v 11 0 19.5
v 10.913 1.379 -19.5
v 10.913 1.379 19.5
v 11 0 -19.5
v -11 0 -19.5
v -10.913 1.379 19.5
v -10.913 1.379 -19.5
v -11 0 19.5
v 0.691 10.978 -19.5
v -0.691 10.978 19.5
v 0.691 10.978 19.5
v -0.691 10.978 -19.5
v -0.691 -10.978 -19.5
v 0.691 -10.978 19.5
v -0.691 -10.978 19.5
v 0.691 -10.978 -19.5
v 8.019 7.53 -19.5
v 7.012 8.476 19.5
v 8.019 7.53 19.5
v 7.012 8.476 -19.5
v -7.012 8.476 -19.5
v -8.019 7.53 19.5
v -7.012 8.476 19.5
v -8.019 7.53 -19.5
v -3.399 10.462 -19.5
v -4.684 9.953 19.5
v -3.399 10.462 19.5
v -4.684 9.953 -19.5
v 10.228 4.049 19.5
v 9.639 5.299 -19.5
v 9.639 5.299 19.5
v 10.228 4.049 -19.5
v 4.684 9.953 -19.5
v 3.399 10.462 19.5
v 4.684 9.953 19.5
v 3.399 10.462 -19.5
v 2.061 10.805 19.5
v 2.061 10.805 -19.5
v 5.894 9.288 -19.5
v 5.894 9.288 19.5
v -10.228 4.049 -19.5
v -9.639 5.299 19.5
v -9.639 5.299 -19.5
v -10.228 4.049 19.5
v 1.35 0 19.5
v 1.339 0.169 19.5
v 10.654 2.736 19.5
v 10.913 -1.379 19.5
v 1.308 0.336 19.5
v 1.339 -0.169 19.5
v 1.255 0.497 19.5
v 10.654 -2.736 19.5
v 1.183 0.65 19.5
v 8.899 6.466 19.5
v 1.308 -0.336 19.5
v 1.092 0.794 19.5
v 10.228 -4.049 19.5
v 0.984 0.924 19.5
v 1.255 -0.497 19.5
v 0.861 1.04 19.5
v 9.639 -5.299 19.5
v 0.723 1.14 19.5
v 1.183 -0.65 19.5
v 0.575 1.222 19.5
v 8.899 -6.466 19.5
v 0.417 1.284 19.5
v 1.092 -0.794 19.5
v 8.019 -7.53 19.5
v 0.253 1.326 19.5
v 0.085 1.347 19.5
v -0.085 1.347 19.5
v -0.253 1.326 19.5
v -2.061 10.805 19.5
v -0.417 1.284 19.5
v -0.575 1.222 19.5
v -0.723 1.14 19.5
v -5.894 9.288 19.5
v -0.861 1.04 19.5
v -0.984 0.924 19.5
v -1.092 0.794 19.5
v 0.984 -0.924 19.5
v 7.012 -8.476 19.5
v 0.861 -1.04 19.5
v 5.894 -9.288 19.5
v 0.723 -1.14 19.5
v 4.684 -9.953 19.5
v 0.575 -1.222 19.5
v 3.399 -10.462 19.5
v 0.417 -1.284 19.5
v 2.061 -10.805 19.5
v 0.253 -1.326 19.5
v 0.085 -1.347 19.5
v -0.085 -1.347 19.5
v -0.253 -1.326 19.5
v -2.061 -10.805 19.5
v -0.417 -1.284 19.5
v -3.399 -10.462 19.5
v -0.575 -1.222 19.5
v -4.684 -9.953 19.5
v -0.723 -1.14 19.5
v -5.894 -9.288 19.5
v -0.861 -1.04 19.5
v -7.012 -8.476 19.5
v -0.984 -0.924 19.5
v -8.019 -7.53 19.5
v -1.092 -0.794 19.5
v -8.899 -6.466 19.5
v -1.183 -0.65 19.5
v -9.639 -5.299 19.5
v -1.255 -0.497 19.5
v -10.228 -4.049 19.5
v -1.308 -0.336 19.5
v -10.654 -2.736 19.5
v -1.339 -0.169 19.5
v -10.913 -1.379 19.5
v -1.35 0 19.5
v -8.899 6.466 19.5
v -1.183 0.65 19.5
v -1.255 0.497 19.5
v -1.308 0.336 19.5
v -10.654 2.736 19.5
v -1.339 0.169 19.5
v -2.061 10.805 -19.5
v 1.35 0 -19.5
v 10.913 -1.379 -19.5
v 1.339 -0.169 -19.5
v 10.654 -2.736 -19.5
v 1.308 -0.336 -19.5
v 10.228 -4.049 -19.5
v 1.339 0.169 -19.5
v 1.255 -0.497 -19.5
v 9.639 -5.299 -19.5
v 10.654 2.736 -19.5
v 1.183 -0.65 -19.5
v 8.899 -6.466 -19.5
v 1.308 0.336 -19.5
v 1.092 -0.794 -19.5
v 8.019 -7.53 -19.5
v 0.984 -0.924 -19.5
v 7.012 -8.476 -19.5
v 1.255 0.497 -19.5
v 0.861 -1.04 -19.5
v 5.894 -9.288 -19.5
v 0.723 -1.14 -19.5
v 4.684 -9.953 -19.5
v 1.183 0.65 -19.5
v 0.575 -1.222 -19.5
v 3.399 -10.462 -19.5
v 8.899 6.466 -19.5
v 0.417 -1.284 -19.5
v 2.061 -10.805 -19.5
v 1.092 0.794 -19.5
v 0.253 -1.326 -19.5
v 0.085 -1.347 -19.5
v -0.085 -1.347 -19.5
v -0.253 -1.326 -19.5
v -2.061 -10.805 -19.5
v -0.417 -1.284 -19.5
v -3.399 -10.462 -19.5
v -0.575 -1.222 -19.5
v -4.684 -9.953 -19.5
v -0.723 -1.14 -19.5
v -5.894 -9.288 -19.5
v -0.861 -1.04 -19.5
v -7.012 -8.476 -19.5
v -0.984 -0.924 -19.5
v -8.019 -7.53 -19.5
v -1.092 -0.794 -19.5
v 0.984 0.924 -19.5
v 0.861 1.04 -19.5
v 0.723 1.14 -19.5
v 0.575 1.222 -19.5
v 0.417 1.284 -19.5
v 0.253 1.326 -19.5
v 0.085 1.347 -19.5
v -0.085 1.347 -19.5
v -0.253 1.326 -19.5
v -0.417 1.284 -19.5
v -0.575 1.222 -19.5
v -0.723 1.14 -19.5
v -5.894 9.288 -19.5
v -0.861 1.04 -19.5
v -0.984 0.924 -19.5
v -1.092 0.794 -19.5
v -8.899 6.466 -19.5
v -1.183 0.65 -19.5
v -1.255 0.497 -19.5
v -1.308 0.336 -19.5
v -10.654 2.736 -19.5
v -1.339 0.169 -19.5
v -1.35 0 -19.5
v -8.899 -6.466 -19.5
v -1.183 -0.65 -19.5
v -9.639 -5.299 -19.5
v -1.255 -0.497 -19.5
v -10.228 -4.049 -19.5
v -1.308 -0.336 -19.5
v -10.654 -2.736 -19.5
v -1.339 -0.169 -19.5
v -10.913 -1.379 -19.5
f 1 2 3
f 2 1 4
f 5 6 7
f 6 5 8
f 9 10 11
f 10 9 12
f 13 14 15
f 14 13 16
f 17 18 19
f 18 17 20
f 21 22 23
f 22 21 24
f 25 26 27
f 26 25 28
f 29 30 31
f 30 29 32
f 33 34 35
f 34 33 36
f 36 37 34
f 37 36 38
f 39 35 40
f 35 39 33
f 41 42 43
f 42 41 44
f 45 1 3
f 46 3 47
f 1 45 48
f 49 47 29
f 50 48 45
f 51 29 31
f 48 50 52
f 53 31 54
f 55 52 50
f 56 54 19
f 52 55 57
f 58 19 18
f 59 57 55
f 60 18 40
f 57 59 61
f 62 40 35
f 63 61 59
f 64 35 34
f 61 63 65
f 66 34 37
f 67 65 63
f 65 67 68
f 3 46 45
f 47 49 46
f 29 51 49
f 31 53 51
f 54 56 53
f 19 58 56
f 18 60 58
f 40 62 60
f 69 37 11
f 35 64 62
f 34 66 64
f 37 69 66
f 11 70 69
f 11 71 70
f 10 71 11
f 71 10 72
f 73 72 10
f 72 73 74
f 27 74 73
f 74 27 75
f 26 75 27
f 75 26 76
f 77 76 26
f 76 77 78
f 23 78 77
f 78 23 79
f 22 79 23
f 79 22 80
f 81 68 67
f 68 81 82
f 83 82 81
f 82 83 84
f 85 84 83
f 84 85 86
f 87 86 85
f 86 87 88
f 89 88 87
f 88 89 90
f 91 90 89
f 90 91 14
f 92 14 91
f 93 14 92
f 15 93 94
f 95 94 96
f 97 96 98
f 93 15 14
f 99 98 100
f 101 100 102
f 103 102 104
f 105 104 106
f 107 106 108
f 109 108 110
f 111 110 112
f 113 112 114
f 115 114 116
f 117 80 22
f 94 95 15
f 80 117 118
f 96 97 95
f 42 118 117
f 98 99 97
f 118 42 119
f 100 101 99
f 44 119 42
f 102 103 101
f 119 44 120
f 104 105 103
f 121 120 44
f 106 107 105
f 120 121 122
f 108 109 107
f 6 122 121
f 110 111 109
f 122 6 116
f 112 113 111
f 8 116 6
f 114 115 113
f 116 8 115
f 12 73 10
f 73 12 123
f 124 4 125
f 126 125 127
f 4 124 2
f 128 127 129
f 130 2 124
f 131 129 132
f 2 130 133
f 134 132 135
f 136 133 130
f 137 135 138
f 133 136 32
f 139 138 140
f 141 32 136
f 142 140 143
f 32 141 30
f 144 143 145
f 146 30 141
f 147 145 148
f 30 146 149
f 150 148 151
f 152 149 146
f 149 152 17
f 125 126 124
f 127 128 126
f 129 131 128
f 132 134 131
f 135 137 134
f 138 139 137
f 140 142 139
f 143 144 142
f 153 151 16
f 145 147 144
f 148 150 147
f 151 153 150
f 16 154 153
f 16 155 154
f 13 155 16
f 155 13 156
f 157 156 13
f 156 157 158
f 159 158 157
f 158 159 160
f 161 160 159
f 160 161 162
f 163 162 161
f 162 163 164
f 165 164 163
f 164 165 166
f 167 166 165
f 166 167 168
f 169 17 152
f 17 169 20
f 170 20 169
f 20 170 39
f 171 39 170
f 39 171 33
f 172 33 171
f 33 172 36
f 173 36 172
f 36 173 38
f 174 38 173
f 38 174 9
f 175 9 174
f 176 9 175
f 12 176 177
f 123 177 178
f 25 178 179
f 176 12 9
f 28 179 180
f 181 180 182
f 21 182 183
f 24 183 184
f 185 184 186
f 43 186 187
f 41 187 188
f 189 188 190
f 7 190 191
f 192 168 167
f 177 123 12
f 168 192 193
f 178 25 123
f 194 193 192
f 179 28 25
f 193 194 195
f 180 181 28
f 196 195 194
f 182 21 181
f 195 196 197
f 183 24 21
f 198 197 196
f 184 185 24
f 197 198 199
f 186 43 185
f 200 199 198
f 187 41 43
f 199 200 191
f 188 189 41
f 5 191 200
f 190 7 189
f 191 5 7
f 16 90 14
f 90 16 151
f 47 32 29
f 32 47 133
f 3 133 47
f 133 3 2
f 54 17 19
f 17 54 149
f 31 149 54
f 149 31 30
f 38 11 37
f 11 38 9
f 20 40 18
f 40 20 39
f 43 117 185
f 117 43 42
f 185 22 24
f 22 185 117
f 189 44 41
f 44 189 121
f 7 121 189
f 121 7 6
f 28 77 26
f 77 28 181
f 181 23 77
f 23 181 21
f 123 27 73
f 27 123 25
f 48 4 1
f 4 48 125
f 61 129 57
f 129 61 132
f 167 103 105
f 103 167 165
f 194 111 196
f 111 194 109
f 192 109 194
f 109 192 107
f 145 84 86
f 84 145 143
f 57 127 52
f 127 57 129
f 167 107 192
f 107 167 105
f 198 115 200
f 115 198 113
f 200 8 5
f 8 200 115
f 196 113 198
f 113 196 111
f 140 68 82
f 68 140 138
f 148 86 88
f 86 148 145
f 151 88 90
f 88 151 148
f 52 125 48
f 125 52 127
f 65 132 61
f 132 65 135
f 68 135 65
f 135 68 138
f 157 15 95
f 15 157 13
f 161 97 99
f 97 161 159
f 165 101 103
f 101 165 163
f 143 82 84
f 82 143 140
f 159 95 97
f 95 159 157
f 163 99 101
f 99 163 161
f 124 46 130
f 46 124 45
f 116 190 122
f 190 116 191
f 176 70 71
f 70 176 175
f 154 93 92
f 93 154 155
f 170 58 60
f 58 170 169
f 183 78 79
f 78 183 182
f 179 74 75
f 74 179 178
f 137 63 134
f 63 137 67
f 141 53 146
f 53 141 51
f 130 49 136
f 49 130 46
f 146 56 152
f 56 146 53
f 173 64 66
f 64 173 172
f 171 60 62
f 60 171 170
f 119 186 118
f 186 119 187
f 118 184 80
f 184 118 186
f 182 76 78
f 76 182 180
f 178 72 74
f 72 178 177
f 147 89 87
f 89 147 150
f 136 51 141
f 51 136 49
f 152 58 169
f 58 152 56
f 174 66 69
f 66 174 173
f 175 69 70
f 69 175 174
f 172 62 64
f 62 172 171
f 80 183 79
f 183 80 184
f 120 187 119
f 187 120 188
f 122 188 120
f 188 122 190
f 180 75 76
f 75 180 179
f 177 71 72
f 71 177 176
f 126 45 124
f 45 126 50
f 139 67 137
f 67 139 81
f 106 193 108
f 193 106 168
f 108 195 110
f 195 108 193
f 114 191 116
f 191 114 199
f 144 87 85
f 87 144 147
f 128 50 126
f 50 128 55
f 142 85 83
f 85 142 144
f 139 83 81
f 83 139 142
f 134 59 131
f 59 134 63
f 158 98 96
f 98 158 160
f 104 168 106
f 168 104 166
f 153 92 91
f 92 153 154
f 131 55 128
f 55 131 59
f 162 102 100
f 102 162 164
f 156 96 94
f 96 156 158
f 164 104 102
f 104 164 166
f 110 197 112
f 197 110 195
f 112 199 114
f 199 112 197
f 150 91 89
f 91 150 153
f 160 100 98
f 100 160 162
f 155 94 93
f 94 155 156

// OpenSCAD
$fn = 50;


difference() {
	union() {
		translate(v = [0, 0, -19.5000000000]) {
			cylinder(h = 39, r = 11.0000000000);
		}
	}
	union() {
		translate(v = [0, 0, -100.0000000000]) {
			cylinder(h = 200, r = 1.3500000000);
		}
	}
}
